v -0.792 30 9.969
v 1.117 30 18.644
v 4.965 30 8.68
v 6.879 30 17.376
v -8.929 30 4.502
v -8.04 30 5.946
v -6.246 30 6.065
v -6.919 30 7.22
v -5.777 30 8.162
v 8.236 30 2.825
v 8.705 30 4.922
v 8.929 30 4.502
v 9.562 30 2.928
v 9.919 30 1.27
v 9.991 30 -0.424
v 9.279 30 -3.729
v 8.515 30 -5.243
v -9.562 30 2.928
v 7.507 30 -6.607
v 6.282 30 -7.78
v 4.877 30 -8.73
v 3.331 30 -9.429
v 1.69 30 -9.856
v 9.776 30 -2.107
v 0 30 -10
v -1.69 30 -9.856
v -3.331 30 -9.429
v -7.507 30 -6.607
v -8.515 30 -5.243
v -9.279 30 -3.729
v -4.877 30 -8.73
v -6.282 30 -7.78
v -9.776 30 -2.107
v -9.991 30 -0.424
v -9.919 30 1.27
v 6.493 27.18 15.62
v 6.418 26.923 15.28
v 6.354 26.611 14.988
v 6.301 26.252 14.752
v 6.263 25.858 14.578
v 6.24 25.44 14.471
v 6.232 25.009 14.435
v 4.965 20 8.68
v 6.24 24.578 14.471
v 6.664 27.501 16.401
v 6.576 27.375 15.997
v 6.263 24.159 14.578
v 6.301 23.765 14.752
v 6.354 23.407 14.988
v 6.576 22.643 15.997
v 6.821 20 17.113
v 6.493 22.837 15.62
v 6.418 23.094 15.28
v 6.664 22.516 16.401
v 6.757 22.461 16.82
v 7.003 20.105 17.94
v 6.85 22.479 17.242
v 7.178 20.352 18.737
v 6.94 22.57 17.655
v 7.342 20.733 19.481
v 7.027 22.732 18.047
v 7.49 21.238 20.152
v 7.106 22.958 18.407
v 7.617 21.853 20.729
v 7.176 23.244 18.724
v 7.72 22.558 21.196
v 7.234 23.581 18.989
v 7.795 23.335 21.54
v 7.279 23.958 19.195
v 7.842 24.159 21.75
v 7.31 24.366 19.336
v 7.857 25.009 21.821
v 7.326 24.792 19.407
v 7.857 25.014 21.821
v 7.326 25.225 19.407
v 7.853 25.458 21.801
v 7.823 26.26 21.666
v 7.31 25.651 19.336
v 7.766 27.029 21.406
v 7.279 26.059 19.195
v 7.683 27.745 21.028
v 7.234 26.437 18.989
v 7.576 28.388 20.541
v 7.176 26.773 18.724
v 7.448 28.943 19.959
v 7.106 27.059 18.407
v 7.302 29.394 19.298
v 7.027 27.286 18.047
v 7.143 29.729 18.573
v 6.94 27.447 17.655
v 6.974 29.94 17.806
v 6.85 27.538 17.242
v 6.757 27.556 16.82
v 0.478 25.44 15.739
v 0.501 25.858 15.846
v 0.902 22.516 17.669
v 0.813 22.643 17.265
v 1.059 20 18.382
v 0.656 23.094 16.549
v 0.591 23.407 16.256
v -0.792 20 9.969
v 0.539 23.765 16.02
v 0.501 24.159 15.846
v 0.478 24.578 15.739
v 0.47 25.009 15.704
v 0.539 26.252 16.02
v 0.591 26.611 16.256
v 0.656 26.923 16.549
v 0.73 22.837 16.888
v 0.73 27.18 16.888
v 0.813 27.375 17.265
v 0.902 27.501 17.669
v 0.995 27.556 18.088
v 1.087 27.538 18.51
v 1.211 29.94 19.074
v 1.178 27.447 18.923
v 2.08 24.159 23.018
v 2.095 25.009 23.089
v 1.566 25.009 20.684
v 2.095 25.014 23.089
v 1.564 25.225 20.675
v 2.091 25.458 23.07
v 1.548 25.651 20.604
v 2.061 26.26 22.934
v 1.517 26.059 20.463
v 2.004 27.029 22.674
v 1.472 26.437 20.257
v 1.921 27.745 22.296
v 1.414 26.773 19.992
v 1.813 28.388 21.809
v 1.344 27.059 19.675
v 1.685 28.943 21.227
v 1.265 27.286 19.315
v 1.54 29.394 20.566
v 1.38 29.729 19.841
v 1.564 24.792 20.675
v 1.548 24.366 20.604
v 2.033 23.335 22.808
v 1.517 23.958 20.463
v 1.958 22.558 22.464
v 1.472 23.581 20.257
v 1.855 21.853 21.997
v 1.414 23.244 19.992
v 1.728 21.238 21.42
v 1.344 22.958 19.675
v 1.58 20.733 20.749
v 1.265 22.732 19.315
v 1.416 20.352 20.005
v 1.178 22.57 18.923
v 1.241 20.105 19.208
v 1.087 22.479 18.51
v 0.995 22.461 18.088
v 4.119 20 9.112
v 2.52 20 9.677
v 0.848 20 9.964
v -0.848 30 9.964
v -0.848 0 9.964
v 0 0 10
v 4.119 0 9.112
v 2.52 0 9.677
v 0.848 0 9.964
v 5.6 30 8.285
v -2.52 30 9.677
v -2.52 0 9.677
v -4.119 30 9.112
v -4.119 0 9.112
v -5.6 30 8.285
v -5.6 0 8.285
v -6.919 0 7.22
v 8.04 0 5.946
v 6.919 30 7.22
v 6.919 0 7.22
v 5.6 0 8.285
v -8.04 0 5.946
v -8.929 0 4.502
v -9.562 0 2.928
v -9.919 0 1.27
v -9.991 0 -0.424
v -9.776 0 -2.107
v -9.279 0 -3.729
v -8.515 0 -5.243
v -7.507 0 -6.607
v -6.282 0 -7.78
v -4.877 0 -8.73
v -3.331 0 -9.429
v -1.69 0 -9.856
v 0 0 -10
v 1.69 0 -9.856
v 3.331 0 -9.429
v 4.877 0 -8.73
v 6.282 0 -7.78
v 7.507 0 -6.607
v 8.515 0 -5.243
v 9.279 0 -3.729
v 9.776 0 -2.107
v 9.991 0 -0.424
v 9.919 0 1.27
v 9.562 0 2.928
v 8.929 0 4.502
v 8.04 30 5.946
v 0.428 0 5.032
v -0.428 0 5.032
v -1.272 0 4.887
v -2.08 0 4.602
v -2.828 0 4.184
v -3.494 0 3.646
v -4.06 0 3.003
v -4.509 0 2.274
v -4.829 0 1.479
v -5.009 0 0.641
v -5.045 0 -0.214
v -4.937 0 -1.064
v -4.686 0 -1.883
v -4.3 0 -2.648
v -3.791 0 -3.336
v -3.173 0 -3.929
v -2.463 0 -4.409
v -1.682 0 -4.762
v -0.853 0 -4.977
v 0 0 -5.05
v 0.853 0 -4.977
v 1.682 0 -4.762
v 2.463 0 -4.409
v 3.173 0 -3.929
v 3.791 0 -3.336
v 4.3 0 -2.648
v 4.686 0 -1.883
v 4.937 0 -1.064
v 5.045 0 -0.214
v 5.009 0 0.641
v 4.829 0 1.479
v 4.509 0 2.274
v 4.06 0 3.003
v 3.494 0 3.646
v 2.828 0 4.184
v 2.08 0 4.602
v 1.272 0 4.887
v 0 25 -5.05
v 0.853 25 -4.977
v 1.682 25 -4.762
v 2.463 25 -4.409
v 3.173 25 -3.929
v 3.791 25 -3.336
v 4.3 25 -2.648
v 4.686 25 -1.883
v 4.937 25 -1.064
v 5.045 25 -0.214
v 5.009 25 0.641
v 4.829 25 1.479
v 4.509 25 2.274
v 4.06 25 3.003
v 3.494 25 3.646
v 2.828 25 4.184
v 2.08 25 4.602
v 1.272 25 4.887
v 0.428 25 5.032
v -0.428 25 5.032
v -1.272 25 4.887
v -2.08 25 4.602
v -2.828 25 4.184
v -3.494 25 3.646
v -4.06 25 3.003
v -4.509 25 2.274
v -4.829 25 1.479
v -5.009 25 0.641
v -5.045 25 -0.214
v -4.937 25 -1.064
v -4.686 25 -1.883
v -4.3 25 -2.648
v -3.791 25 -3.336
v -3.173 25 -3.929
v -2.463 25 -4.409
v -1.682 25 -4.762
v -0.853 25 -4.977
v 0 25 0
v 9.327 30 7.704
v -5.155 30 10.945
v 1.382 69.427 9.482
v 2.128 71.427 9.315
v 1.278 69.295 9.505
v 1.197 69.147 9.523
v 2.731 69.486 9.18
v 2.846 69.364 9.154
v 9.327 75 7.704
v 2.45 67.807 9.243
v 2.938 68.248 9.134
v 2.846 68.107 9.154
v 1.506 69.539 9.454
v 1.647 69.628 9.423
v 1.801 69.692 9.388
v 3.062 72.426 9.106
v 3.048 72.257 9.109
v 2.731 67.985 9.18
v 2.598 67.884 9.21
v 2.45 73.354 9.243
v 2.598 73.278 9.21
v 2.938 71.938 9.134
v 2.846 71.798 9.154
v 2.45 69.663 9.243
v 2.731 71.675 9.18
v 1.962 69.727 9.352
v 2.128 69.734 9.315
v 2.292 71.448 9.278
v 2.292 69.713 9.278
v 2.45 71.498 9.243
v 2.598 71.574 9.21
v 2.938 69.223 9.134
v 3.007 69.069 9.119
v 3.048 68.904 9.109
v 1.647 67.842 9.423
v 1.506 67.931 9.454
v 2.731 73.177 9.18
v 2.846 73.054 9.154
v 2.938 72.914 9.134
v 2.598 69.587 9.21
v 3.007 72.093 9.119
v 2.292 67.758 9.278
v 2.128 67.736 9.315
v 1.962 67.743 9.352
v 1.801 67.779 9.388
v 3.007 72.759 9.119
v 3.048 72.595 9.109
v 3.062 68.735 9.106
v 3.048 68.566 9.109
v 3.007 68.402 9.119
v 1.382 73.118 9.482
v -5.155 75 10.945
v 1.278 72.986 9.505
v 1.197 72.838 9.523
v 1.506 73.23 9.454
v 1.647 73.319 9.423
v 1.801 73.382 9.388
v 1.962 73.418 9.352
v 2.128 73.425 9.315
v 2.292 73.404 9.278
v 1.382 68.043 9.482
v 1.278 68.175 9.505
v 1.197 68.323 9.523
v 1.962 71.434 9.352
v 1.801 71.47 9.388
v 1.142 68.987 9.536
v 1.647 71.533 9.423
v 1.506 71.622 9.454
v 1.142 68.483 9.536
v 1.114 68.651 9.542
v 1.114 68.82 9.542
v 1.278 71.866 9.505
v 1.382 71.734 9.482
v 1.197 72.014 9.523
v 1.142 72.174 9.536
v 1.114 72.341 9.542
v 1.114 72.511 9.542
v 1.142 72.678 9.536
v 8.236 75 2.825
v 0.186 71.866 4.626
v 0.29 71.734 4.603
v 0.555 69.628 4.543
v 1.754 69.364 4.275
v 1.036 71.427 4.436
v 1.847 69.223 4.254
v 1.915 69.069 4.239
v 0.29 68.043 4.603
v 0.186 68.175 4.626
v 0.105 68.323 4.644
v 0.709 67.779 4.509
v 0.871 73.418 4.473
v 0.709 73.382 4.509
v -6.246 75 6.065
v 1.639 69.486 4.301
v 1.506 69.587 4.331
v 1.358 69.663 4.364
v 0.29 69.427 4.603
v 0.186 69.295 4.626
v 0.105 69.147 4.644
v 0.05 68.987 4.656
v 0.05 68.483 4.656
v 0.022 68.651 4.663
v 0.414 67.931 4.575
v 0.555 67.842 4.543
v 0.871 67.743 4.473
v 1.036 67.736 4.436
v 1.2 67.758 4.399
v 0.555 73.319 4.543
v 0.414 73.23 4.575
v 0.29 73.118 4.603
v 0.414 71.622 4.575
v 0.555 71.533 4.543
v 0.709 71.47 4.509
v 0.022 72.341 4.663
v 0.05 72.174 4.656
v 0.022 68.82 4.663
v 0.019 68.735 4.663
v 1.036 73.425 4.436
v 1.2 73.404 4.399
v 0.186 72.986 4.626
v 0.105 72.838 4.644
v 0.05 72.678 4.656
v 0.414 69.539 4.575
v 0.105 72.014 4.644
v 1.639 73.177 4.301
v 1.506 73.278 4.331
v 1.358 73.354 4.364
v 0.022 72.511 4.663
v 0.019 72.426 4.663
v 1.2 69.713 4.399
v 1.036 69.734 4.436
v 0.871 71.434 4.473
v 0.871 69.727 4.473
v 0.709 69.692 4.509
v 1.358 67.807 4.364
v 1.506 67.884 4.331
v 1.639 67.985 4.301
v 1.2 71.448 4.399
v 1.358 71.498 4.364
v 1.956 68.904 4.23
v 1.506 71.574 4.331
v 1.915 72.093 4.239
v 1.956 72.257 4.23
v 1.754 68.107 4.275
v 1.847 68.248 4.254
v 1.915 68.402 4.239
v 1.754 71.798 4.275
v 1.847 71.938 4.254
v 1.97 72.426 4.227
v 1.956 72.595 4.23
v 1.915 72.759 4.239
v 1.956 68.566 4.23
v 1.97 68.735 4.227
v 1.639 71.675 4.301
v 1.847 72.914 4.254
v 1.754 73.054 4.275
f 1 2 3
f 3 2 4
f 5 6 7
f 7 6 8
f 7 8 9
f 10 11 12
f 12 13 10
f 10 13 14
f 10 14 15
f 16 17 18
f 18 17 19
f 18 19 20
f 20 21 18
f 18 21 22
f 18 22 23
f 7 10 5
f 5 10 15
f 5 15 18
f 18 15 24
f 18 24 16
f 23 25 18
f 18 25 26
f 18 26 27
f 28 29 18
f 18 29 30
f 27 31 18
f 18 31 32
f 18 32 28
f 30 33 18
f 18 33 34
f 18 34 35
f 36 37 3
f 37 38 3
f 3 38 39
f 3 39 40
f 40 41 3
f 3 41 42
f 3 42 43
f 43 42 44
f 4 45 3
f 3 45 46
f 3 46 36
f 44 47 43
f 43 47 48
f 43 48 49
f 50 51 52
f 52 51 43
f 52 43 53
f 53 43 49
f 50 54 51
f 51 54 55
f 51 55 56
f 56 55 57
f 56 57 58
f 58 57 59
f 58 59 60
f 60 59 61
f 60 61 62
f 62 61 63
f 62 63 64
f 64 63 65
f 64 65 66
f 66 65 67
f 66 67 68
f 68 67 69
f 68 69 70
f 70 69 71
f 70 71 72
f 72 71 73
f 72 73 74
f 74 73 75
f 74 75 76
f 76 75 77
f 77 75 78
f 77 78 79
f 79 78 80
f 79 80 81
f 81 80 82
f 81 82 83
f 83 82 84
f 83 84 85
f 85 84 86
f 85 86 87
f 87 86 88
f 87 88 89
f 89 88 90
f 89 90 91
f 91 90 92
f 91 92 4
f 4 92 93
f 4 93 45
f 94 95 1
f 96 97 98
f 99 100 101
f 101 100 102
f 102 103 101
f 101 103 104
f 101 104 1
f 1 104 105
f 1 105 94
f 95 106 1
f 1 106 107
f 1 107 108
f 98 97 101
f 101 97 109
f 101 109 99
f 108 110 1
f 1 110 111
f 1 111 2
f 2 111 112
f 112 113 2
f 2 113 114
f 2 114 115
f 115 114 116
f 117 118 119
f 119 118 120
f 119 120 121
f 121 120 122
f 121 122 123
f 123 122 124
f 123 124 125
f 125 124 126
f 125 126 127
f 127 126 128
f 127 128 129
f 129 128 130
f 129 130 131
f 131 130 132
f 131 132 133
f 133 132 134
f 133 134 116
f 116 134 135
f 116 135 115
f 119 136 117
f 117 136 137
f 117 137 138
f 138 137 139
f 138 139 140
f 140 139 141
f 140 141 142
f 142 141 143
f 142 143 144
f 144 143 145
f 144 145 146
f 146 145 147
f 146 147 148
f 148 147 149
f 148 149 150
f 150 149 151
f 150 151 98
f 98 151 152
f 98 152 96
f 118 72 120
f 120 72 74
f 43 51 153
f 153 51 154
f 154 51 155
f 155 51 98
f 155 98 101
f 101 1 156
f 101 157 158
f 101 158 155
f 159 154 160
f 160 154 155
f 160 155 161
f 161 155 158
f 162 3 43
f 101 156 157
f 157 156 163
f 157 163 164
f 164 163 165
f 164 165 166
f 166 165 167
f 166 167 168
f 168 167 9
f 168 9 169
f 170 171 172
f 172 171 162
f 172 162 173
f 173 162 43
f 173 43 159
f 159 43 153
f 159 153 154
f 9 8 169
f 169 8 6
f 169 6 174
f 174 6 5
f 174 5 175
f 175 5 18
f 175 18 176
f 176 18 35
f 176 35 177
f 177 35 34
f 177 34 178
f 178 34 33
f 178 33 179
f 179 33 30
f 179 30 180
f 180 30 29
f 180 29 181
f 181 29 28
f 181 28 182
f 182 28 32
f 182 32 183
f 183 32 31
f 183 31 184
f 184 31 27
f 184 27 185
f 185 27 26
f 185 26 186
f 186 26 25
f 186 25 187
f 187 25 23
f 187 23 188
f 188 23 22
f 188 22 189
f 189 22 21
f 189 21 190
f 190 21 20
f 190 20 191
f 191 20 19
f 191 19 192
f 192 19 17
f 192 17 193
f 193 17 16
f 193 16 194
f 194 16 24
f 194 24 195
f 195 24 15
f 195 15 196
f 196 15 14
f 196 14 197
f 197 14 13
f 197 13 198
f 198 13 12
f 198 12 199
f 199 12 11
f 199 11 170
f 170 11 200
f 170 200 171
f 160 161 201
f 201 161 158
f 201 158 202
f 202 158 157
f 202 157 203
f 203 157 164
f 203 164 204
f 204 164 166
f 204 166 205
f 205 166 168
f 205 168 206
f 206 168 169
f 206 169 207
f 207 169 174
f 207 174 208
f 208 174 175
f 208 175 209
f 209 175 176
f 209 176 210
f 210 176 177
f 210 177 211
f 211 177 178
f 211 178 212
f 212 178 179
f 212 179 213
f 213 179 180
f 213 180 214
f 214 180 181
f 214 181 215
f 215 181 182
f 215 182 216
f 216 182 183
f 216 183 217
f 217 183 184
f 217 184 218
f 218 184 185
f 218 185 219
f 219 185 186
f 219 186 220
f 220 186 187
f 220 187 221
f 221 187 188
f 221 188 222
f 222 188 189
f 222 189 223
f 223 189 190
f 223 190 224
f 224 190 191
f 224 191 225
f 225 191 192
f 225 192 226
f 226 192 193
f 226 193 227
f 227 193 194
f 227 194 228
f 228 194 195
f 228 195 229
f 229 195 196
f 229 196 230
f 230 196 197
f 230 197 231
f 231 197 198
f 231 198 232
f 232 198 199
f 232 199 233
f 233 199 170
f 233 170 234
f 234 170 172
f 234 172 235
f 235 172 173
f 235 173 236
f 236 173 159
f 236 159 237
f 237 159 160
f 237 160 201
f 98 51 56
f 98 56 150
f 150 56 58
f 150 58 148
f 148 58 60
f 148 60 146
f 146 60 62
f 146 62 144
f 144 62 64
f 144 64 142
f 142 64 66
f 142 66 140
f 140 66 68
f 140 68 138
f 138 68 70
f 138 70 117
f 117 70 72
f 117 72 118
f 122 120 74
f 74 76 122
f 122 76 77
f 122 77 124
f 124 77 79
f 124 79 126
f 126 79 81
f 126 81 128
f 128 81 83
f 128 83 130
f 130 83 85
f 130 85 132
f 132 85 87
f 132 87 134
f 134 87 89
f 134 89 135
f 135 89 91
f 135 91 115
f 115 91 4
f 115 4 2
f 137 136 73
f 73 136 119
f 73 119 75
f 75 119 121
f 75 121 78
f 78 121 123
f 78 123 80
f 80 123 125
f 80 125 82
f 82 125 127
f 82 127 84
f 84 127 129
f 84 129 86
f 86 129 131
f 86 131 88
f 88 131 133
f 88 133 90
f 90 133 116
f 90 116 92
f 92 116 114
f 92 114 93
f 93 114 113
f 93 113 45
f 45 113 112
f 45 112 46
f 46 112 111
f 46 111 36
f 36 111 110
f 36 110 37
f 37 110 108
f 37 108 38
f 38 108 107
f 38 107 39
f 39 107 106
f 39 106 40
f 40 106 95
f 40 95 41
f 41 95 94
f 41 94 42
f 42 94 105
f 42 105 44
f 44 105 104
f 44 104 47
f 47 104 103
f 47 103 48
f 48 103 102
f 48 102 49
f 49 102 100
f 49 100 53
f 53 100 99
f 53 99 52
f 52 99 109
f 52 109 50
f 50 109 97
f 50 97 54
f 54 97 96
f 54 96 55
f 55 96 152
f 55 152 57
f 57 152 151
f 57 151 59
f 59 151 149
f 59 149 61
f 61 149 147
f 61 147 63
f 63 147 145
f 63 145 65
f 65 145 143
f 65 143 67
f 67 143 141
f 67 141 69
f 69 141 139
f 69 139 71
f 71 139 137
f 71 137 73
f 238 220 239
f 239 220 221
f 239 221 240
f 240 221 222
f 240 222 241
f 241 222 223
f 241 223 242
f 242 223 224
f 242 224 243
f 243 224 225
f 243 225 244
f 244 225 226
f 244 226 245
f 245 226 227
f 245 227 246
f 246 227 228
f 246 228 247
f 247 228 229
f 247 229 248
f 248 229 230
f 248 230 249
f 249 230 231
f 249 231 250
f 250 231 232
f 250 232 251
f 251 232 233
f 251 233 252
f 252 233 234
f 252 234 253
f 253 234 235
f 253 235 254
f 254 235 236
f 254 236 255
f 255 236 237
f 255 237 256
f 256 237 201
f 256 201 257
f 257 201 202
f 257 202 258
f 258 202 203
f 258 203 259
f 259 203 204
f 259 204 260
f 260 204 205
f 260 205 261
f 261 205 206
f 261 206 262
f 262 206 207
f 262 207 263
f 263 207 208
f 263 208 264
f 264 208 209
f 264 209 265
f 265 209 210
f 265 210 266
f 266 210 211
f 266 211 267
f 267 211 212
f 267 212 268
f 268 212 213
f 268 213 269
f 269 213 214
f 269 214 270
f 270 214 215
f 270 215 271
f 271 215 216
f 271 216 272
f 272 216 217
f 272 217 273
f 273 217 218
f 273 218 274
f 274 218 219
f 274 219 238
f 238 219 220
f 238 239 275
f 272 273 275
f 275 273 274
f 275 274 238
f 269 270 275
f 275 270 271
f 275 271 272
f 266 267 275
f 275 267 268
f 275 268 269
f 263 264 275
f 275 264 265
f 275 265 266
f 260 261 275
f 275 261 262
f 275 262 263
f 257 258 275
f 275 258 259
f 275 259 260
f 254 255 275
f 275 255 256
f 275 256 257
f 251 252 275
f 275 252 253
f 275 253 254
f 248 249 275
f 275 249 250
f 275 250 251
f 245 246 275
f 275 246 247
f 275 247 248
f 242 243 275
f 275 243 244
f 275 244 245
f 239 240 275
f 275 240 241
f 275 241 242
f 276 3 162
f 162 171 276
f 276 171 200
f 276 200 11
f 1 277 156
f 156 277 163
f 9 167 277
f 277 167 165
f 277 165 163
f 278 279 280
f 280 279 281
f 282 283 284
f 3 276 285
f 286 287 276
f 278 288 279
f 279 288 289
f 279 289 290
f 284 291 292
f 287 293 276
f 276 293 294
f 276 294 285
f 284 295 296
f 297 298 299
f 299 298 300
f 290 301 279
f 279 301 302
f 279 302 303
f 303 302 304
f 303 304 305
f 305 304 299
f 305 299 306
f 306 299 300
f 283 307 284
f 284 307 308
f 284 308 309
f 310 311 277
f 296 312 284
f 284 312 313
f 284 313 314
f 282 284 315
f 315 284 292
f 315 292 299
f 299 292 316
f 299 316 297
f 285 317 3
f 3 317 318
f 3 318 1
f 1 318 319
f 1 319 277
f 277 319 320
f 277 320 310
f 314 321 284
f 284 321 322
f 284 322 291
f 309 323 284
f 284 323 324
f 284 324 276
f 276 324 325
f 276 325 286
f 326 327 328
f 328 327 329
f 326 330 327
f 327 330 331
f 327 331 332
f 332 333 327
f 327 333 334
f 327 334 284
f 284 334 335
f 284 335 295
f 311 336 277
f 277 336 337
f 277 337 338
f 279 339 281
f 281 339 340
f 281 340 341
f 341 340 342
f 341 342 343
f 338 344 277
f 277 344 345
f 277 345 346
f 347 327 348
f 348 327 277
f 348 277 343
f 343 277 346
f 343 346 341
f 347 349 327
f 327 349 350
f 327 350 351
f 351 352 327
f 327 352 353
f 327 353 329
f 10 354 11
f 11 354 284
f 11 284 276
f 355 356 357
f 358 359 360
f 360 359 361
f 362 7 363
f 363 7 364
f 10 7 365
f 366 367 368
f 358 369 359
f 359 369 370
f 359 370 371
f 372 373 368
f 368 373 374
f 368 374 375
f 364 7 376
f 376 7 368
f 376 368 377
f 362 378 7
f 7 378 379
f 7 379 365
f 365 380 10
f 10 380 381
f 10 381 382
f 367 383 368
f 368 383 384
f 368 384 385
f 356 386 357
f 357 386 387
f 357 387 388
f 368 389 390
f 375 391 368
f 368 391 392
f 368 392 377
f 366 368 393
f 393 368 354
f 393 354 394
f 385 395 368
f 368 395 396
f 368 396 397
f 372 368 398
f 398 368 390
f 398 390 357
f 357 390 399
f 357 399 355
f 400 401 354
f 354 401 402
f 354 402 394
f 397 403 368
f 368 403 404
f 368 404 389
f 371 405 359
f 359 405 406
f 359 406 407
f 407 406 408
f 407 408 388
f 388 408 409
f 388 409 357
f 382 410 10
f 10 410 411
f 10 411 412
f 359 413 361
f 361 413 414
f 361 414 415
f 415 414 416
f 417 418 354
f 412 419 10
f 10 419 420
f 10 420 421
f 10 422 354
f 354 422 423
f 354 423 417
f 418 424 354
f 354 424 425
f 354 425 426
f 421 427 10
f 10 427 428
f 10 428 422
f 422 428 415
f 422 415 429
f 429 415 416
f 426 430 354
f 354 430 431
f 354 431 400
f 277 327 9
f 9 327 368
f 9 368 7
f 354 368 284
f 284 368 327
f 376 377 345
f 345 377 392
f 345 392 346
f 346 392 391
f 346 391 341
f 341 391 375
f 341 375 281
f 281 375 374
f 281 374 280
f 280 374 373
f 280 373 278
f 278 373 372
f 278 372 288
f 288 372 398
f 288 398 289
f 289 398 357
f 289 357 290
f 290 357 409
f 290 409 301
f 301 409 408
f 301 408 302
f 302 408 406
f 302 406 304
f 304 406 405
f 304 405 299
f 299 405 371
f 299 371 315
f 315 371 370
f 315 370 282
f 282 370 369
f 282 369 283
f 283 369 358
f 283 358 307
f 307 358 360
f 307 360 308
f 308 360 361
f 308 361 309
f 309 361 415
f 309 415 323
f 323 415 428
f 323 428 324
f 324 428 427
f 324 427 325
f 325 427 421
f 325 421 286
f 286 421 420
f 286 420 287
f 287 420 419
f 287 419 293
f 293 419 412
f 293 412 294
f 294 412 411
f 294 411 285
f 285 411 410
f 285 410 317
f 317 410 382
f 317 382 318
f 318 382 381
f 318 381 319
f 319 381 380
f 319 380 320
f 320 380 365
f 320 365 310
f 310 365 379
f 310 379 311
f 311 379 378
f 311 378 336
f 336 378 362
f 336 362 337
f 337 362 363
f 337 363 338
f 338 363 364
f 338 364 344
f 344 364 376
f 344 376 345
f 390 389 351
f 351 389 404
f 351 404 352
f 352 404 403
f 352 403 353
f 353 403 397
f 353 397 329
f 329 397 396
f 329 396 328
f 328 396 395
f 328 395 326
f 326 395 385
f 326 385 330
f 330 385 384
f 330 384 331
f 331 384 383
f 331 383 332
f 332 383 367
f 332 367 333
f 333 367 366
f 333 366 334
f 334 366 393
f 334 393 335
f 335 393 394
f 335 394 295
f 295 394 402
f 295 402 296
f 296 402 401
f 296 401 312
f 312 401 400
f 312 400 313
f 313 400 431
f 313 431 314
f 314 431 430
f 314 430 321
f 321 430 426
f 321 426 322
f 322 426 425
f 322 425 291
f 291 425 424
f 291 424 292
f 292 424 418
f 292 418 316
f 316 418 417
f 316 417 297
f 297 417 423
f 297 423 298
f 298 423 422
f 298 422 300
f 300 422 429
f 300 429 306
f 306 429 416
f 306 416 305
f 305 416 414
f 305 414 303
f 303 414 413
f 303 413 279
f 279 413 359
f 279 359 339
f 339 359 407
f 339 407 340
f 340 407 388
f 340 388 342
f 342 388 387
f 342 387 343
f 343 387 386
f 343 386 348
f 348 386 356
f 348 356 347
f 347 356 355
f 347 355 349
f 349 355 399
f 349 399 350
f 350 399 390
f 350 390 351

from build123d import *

# Parameters (mm, degrees)
SKETCH_2_R          = 10
EXTRUDE_1_DEPTH     = 30
EXTRUDE_START       = -10
EXTRUDE_2_DEPTH     = 10
CUT_EXTRUDE_4_DEPTH = 41.372064023
CUT_EXTRUDE_5_DEPTH = 41.372064023
CUT_EXTRUDE_6_DEPTH = 41.372064023
CUT_EXTRUDE_7_DEPTH = 41.372064023
SKETCH_10_R         = 5.05
CUT_EXTRUDE_8_DEPTH = 25
EXTRUDE_3_DEPTH     = 45
SKETCH_12_R         = 1
CUT_EXTRUDE_9_DEPTH = 79.386948681


with BuildPart() as part:
    # Эскиз2 → Бобышка-Вытянуть1 (new body)
    with BuildSketch(Plane(origin=(0, 0, 0), x_dir=(1, 0, 0), z_dir=(0, 1, 0))):
        Circle(SKETCH_2_R)
    extrude(amount=EXTRUDE_1_DEPTH)

    # Эскиз4 → Бобышка-Вытянуть2 (add)
    with BuildSketch(Plane(origin=(0, 30, 0), x_dir=(1, 0, 0), z_dir=(0, 1, 0)).offset(EXTRUDE_START)):
        with BuildLine():
            Line((7.857286278, -21.821134908), (4.965257474, -8.680219941))
            ThreePointArc((4.965257474, -8.680219941), (2.18360644, -9.758681413), (-0.792400015, -9.968555674))
            Line((-0.792400015, -9.968555674), (2.095178486, -23.089249172))
            Line((2.095178486, -23.089249172), (7.857286278, -21.821134908))
        make_face()
    extrude(amount=EXTRUDE_2_DEPTH)

    # Эскиз6 → Вырез-Вытянуть4 (cut, through all)
    with BuildSketch(Plane(origin=(2.913802079, 0, -0.641264293), x_dir=(-0.2149346210056599, 0, -0.9766284394247146), z_dir=(0.9766284394247146, 0, -0.2149346210056599))):
        with BuildLine():
            Line((-22.999943781, 25.008760147), (-22.999943781, 20))
            Line((-22.999943781, 20), (-18.179619595, 20))
            ThreePointArc((-18.179619595, 20), (-21.599118817, 21.533015498), (-22.999943781, 25.008760147))
        make_face()
    extrude(amount=-CUT_EXTRUDE_4_DEPTH, mode=Mode.SUBTRACT)

    # Эскиз6<3> → Вырез-Вытянуть5 (cut, through all)
    with BuildSketch(Plane(origin=(2.913802079, 0, -0.641264293), x_dir=(-0.2149346210056599, 0, -0.9766284394247146), z_dir=(0.9766284394247146, 0, -0.2149346210056599))):
        with BuildLine():
            Line((-22.999943781, 30), (-22.999943781, 25.008760147))
            ThreePointArc((-22.999943781, 25.008760147), (-21.691086809, 28.386338596), (-18.448057419, 30))
            Line((-18.448057419, 30), (-22.999943781, 30))
        make_face()
    extrude(amount=-CUT_EXTRUDE_5_DEPTH, mode=Mode.SUBTRACT)

    # Эскиз6<4> → Вырез-Вытянуть6 (cut, through all)
    with BuildSketch(Plane(origin=(2.913802079, 0, -0.641264293), x_dir=(-0.2149346210056599, 0, -0.9766284394247146), z_dir=(0.9766284394247146, 0, -0.2149346210056599))):
        with BuildLine():
            Line((-15.437501839, 25.006114345), (-20.537499094, 25.01140595))
            ThreePointArc((-20.537499094, 25.01140595), (-17.990146269, 22.45876152), (-15.437501839, 25.006114345))
        make_face()
    extrude(amount=-CUT_EXTRUDE_6_DEPTH, mode=Mode.SUBTRACT)

    # Эскиз6<5> → Вырез-Вытянуть7 (cut, through all)
    with BuildSketch(Plane(origin=(2.913802079, 0, -0.641264293), x_dir=(-0.2149346210056599, 0, -0.9766284394247146), z_dir=(0.9766284394247146, 0, -0.2149346210056599))):
        with BuildLine():
            ThreePointArc((-15.437500467, 25.008760147), (-17.986177565, 27.558759804), (-20.537499094, 25.01140595))
            Line((-20.537499094, 25.01140595), (-15.437501839, 25.006114345))
            ThreePointArc((-15.437501839, 25.006114345), (-15.43750081, 25.007437246), (-15.437500467, 25.008760147))
        make_face()
    extrude(amount=-CUT_EXTRUDE_7_DEPTH, mode=Mode.SUBTRACT)

    # Эскиз10 → Вырез-Вытянуть8 (cut)
    with BuildSketch(Plane.XZ):
        Circle(SKETCH_10_R)
    extrude(amount=-CUT_EXTRUDE_8_DEPTH, mode=Mode.SUBTRACT)

    # Эскиз11 → Бобышка-Вытянуть3 (add)
    with BuildSketch(Plane(origin=(0, 30, 0), x_dir=(1, 0, 0), z_dir=(0, 1, 0))):
        Polygon((-6.246428482, -6.065308226), (-5.154625262, -10.944648932), (9.327482721, -7.704126682), (8.235679501, -2.824785976), align=None)
    extrude(amount=EXTRUDE_3_DEPTH)

    # Эскиз12 → Вырез-Вытянуть9 (cut, through all)
    with BuildSketch(Plane(origin=(2.08642873, 0, 9.324387807), x_dir=(0.975868141278159, 0, -0.21836064397759777), z_dir=(0.21836064397759777, 0, 0.975868141278159))):
        with Locations((0, 72.426081563)):
            Circle(SKETCH_12_R)
        with Locations((0, 68.735454777)):
            Circle(SKETCH_12_R)
    extrude(amount=-CUT_EXTRUDE_9_DEPTH, mode=Mode.SUBTRACT)


solid = part.part
